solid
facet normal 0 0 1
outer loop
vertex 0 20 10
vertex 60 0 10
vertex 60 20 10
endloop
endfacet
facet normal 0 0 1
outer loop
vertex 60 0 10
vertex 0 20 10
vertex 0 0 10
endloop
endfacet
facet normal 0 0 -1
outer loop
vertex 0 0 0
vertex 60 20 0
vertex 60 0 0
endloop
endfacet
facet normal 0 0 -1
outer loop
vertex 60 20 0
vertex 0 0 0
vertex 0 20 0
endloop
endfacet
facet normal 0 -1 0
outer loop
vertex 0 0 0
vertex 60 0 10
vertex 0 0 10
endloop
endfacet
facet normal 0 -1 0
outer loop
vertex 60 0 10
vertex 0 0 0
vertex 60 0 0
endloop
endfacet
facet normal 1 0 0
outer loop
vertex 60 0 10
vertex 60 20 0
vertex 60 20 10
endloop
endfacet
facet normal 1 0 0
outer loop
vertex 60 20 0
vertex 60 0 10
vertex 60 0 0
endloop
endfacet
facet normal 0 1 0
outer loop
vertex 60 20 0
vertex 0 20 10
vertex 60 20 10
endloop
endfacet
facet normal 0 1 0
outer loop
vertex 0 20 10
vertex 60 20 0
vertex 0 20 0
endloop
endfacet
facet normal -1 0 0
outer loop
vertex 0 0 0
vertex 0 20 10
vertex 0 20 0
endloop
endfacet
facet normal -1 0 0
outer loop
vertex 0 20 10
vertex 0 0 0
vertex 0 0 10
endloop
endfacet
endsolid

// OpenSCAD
// Simple carriage that can slide along rails
module carriage(width=60, depth=20, height=10) {
    cube([width, depth, height]);
}

carriage();
